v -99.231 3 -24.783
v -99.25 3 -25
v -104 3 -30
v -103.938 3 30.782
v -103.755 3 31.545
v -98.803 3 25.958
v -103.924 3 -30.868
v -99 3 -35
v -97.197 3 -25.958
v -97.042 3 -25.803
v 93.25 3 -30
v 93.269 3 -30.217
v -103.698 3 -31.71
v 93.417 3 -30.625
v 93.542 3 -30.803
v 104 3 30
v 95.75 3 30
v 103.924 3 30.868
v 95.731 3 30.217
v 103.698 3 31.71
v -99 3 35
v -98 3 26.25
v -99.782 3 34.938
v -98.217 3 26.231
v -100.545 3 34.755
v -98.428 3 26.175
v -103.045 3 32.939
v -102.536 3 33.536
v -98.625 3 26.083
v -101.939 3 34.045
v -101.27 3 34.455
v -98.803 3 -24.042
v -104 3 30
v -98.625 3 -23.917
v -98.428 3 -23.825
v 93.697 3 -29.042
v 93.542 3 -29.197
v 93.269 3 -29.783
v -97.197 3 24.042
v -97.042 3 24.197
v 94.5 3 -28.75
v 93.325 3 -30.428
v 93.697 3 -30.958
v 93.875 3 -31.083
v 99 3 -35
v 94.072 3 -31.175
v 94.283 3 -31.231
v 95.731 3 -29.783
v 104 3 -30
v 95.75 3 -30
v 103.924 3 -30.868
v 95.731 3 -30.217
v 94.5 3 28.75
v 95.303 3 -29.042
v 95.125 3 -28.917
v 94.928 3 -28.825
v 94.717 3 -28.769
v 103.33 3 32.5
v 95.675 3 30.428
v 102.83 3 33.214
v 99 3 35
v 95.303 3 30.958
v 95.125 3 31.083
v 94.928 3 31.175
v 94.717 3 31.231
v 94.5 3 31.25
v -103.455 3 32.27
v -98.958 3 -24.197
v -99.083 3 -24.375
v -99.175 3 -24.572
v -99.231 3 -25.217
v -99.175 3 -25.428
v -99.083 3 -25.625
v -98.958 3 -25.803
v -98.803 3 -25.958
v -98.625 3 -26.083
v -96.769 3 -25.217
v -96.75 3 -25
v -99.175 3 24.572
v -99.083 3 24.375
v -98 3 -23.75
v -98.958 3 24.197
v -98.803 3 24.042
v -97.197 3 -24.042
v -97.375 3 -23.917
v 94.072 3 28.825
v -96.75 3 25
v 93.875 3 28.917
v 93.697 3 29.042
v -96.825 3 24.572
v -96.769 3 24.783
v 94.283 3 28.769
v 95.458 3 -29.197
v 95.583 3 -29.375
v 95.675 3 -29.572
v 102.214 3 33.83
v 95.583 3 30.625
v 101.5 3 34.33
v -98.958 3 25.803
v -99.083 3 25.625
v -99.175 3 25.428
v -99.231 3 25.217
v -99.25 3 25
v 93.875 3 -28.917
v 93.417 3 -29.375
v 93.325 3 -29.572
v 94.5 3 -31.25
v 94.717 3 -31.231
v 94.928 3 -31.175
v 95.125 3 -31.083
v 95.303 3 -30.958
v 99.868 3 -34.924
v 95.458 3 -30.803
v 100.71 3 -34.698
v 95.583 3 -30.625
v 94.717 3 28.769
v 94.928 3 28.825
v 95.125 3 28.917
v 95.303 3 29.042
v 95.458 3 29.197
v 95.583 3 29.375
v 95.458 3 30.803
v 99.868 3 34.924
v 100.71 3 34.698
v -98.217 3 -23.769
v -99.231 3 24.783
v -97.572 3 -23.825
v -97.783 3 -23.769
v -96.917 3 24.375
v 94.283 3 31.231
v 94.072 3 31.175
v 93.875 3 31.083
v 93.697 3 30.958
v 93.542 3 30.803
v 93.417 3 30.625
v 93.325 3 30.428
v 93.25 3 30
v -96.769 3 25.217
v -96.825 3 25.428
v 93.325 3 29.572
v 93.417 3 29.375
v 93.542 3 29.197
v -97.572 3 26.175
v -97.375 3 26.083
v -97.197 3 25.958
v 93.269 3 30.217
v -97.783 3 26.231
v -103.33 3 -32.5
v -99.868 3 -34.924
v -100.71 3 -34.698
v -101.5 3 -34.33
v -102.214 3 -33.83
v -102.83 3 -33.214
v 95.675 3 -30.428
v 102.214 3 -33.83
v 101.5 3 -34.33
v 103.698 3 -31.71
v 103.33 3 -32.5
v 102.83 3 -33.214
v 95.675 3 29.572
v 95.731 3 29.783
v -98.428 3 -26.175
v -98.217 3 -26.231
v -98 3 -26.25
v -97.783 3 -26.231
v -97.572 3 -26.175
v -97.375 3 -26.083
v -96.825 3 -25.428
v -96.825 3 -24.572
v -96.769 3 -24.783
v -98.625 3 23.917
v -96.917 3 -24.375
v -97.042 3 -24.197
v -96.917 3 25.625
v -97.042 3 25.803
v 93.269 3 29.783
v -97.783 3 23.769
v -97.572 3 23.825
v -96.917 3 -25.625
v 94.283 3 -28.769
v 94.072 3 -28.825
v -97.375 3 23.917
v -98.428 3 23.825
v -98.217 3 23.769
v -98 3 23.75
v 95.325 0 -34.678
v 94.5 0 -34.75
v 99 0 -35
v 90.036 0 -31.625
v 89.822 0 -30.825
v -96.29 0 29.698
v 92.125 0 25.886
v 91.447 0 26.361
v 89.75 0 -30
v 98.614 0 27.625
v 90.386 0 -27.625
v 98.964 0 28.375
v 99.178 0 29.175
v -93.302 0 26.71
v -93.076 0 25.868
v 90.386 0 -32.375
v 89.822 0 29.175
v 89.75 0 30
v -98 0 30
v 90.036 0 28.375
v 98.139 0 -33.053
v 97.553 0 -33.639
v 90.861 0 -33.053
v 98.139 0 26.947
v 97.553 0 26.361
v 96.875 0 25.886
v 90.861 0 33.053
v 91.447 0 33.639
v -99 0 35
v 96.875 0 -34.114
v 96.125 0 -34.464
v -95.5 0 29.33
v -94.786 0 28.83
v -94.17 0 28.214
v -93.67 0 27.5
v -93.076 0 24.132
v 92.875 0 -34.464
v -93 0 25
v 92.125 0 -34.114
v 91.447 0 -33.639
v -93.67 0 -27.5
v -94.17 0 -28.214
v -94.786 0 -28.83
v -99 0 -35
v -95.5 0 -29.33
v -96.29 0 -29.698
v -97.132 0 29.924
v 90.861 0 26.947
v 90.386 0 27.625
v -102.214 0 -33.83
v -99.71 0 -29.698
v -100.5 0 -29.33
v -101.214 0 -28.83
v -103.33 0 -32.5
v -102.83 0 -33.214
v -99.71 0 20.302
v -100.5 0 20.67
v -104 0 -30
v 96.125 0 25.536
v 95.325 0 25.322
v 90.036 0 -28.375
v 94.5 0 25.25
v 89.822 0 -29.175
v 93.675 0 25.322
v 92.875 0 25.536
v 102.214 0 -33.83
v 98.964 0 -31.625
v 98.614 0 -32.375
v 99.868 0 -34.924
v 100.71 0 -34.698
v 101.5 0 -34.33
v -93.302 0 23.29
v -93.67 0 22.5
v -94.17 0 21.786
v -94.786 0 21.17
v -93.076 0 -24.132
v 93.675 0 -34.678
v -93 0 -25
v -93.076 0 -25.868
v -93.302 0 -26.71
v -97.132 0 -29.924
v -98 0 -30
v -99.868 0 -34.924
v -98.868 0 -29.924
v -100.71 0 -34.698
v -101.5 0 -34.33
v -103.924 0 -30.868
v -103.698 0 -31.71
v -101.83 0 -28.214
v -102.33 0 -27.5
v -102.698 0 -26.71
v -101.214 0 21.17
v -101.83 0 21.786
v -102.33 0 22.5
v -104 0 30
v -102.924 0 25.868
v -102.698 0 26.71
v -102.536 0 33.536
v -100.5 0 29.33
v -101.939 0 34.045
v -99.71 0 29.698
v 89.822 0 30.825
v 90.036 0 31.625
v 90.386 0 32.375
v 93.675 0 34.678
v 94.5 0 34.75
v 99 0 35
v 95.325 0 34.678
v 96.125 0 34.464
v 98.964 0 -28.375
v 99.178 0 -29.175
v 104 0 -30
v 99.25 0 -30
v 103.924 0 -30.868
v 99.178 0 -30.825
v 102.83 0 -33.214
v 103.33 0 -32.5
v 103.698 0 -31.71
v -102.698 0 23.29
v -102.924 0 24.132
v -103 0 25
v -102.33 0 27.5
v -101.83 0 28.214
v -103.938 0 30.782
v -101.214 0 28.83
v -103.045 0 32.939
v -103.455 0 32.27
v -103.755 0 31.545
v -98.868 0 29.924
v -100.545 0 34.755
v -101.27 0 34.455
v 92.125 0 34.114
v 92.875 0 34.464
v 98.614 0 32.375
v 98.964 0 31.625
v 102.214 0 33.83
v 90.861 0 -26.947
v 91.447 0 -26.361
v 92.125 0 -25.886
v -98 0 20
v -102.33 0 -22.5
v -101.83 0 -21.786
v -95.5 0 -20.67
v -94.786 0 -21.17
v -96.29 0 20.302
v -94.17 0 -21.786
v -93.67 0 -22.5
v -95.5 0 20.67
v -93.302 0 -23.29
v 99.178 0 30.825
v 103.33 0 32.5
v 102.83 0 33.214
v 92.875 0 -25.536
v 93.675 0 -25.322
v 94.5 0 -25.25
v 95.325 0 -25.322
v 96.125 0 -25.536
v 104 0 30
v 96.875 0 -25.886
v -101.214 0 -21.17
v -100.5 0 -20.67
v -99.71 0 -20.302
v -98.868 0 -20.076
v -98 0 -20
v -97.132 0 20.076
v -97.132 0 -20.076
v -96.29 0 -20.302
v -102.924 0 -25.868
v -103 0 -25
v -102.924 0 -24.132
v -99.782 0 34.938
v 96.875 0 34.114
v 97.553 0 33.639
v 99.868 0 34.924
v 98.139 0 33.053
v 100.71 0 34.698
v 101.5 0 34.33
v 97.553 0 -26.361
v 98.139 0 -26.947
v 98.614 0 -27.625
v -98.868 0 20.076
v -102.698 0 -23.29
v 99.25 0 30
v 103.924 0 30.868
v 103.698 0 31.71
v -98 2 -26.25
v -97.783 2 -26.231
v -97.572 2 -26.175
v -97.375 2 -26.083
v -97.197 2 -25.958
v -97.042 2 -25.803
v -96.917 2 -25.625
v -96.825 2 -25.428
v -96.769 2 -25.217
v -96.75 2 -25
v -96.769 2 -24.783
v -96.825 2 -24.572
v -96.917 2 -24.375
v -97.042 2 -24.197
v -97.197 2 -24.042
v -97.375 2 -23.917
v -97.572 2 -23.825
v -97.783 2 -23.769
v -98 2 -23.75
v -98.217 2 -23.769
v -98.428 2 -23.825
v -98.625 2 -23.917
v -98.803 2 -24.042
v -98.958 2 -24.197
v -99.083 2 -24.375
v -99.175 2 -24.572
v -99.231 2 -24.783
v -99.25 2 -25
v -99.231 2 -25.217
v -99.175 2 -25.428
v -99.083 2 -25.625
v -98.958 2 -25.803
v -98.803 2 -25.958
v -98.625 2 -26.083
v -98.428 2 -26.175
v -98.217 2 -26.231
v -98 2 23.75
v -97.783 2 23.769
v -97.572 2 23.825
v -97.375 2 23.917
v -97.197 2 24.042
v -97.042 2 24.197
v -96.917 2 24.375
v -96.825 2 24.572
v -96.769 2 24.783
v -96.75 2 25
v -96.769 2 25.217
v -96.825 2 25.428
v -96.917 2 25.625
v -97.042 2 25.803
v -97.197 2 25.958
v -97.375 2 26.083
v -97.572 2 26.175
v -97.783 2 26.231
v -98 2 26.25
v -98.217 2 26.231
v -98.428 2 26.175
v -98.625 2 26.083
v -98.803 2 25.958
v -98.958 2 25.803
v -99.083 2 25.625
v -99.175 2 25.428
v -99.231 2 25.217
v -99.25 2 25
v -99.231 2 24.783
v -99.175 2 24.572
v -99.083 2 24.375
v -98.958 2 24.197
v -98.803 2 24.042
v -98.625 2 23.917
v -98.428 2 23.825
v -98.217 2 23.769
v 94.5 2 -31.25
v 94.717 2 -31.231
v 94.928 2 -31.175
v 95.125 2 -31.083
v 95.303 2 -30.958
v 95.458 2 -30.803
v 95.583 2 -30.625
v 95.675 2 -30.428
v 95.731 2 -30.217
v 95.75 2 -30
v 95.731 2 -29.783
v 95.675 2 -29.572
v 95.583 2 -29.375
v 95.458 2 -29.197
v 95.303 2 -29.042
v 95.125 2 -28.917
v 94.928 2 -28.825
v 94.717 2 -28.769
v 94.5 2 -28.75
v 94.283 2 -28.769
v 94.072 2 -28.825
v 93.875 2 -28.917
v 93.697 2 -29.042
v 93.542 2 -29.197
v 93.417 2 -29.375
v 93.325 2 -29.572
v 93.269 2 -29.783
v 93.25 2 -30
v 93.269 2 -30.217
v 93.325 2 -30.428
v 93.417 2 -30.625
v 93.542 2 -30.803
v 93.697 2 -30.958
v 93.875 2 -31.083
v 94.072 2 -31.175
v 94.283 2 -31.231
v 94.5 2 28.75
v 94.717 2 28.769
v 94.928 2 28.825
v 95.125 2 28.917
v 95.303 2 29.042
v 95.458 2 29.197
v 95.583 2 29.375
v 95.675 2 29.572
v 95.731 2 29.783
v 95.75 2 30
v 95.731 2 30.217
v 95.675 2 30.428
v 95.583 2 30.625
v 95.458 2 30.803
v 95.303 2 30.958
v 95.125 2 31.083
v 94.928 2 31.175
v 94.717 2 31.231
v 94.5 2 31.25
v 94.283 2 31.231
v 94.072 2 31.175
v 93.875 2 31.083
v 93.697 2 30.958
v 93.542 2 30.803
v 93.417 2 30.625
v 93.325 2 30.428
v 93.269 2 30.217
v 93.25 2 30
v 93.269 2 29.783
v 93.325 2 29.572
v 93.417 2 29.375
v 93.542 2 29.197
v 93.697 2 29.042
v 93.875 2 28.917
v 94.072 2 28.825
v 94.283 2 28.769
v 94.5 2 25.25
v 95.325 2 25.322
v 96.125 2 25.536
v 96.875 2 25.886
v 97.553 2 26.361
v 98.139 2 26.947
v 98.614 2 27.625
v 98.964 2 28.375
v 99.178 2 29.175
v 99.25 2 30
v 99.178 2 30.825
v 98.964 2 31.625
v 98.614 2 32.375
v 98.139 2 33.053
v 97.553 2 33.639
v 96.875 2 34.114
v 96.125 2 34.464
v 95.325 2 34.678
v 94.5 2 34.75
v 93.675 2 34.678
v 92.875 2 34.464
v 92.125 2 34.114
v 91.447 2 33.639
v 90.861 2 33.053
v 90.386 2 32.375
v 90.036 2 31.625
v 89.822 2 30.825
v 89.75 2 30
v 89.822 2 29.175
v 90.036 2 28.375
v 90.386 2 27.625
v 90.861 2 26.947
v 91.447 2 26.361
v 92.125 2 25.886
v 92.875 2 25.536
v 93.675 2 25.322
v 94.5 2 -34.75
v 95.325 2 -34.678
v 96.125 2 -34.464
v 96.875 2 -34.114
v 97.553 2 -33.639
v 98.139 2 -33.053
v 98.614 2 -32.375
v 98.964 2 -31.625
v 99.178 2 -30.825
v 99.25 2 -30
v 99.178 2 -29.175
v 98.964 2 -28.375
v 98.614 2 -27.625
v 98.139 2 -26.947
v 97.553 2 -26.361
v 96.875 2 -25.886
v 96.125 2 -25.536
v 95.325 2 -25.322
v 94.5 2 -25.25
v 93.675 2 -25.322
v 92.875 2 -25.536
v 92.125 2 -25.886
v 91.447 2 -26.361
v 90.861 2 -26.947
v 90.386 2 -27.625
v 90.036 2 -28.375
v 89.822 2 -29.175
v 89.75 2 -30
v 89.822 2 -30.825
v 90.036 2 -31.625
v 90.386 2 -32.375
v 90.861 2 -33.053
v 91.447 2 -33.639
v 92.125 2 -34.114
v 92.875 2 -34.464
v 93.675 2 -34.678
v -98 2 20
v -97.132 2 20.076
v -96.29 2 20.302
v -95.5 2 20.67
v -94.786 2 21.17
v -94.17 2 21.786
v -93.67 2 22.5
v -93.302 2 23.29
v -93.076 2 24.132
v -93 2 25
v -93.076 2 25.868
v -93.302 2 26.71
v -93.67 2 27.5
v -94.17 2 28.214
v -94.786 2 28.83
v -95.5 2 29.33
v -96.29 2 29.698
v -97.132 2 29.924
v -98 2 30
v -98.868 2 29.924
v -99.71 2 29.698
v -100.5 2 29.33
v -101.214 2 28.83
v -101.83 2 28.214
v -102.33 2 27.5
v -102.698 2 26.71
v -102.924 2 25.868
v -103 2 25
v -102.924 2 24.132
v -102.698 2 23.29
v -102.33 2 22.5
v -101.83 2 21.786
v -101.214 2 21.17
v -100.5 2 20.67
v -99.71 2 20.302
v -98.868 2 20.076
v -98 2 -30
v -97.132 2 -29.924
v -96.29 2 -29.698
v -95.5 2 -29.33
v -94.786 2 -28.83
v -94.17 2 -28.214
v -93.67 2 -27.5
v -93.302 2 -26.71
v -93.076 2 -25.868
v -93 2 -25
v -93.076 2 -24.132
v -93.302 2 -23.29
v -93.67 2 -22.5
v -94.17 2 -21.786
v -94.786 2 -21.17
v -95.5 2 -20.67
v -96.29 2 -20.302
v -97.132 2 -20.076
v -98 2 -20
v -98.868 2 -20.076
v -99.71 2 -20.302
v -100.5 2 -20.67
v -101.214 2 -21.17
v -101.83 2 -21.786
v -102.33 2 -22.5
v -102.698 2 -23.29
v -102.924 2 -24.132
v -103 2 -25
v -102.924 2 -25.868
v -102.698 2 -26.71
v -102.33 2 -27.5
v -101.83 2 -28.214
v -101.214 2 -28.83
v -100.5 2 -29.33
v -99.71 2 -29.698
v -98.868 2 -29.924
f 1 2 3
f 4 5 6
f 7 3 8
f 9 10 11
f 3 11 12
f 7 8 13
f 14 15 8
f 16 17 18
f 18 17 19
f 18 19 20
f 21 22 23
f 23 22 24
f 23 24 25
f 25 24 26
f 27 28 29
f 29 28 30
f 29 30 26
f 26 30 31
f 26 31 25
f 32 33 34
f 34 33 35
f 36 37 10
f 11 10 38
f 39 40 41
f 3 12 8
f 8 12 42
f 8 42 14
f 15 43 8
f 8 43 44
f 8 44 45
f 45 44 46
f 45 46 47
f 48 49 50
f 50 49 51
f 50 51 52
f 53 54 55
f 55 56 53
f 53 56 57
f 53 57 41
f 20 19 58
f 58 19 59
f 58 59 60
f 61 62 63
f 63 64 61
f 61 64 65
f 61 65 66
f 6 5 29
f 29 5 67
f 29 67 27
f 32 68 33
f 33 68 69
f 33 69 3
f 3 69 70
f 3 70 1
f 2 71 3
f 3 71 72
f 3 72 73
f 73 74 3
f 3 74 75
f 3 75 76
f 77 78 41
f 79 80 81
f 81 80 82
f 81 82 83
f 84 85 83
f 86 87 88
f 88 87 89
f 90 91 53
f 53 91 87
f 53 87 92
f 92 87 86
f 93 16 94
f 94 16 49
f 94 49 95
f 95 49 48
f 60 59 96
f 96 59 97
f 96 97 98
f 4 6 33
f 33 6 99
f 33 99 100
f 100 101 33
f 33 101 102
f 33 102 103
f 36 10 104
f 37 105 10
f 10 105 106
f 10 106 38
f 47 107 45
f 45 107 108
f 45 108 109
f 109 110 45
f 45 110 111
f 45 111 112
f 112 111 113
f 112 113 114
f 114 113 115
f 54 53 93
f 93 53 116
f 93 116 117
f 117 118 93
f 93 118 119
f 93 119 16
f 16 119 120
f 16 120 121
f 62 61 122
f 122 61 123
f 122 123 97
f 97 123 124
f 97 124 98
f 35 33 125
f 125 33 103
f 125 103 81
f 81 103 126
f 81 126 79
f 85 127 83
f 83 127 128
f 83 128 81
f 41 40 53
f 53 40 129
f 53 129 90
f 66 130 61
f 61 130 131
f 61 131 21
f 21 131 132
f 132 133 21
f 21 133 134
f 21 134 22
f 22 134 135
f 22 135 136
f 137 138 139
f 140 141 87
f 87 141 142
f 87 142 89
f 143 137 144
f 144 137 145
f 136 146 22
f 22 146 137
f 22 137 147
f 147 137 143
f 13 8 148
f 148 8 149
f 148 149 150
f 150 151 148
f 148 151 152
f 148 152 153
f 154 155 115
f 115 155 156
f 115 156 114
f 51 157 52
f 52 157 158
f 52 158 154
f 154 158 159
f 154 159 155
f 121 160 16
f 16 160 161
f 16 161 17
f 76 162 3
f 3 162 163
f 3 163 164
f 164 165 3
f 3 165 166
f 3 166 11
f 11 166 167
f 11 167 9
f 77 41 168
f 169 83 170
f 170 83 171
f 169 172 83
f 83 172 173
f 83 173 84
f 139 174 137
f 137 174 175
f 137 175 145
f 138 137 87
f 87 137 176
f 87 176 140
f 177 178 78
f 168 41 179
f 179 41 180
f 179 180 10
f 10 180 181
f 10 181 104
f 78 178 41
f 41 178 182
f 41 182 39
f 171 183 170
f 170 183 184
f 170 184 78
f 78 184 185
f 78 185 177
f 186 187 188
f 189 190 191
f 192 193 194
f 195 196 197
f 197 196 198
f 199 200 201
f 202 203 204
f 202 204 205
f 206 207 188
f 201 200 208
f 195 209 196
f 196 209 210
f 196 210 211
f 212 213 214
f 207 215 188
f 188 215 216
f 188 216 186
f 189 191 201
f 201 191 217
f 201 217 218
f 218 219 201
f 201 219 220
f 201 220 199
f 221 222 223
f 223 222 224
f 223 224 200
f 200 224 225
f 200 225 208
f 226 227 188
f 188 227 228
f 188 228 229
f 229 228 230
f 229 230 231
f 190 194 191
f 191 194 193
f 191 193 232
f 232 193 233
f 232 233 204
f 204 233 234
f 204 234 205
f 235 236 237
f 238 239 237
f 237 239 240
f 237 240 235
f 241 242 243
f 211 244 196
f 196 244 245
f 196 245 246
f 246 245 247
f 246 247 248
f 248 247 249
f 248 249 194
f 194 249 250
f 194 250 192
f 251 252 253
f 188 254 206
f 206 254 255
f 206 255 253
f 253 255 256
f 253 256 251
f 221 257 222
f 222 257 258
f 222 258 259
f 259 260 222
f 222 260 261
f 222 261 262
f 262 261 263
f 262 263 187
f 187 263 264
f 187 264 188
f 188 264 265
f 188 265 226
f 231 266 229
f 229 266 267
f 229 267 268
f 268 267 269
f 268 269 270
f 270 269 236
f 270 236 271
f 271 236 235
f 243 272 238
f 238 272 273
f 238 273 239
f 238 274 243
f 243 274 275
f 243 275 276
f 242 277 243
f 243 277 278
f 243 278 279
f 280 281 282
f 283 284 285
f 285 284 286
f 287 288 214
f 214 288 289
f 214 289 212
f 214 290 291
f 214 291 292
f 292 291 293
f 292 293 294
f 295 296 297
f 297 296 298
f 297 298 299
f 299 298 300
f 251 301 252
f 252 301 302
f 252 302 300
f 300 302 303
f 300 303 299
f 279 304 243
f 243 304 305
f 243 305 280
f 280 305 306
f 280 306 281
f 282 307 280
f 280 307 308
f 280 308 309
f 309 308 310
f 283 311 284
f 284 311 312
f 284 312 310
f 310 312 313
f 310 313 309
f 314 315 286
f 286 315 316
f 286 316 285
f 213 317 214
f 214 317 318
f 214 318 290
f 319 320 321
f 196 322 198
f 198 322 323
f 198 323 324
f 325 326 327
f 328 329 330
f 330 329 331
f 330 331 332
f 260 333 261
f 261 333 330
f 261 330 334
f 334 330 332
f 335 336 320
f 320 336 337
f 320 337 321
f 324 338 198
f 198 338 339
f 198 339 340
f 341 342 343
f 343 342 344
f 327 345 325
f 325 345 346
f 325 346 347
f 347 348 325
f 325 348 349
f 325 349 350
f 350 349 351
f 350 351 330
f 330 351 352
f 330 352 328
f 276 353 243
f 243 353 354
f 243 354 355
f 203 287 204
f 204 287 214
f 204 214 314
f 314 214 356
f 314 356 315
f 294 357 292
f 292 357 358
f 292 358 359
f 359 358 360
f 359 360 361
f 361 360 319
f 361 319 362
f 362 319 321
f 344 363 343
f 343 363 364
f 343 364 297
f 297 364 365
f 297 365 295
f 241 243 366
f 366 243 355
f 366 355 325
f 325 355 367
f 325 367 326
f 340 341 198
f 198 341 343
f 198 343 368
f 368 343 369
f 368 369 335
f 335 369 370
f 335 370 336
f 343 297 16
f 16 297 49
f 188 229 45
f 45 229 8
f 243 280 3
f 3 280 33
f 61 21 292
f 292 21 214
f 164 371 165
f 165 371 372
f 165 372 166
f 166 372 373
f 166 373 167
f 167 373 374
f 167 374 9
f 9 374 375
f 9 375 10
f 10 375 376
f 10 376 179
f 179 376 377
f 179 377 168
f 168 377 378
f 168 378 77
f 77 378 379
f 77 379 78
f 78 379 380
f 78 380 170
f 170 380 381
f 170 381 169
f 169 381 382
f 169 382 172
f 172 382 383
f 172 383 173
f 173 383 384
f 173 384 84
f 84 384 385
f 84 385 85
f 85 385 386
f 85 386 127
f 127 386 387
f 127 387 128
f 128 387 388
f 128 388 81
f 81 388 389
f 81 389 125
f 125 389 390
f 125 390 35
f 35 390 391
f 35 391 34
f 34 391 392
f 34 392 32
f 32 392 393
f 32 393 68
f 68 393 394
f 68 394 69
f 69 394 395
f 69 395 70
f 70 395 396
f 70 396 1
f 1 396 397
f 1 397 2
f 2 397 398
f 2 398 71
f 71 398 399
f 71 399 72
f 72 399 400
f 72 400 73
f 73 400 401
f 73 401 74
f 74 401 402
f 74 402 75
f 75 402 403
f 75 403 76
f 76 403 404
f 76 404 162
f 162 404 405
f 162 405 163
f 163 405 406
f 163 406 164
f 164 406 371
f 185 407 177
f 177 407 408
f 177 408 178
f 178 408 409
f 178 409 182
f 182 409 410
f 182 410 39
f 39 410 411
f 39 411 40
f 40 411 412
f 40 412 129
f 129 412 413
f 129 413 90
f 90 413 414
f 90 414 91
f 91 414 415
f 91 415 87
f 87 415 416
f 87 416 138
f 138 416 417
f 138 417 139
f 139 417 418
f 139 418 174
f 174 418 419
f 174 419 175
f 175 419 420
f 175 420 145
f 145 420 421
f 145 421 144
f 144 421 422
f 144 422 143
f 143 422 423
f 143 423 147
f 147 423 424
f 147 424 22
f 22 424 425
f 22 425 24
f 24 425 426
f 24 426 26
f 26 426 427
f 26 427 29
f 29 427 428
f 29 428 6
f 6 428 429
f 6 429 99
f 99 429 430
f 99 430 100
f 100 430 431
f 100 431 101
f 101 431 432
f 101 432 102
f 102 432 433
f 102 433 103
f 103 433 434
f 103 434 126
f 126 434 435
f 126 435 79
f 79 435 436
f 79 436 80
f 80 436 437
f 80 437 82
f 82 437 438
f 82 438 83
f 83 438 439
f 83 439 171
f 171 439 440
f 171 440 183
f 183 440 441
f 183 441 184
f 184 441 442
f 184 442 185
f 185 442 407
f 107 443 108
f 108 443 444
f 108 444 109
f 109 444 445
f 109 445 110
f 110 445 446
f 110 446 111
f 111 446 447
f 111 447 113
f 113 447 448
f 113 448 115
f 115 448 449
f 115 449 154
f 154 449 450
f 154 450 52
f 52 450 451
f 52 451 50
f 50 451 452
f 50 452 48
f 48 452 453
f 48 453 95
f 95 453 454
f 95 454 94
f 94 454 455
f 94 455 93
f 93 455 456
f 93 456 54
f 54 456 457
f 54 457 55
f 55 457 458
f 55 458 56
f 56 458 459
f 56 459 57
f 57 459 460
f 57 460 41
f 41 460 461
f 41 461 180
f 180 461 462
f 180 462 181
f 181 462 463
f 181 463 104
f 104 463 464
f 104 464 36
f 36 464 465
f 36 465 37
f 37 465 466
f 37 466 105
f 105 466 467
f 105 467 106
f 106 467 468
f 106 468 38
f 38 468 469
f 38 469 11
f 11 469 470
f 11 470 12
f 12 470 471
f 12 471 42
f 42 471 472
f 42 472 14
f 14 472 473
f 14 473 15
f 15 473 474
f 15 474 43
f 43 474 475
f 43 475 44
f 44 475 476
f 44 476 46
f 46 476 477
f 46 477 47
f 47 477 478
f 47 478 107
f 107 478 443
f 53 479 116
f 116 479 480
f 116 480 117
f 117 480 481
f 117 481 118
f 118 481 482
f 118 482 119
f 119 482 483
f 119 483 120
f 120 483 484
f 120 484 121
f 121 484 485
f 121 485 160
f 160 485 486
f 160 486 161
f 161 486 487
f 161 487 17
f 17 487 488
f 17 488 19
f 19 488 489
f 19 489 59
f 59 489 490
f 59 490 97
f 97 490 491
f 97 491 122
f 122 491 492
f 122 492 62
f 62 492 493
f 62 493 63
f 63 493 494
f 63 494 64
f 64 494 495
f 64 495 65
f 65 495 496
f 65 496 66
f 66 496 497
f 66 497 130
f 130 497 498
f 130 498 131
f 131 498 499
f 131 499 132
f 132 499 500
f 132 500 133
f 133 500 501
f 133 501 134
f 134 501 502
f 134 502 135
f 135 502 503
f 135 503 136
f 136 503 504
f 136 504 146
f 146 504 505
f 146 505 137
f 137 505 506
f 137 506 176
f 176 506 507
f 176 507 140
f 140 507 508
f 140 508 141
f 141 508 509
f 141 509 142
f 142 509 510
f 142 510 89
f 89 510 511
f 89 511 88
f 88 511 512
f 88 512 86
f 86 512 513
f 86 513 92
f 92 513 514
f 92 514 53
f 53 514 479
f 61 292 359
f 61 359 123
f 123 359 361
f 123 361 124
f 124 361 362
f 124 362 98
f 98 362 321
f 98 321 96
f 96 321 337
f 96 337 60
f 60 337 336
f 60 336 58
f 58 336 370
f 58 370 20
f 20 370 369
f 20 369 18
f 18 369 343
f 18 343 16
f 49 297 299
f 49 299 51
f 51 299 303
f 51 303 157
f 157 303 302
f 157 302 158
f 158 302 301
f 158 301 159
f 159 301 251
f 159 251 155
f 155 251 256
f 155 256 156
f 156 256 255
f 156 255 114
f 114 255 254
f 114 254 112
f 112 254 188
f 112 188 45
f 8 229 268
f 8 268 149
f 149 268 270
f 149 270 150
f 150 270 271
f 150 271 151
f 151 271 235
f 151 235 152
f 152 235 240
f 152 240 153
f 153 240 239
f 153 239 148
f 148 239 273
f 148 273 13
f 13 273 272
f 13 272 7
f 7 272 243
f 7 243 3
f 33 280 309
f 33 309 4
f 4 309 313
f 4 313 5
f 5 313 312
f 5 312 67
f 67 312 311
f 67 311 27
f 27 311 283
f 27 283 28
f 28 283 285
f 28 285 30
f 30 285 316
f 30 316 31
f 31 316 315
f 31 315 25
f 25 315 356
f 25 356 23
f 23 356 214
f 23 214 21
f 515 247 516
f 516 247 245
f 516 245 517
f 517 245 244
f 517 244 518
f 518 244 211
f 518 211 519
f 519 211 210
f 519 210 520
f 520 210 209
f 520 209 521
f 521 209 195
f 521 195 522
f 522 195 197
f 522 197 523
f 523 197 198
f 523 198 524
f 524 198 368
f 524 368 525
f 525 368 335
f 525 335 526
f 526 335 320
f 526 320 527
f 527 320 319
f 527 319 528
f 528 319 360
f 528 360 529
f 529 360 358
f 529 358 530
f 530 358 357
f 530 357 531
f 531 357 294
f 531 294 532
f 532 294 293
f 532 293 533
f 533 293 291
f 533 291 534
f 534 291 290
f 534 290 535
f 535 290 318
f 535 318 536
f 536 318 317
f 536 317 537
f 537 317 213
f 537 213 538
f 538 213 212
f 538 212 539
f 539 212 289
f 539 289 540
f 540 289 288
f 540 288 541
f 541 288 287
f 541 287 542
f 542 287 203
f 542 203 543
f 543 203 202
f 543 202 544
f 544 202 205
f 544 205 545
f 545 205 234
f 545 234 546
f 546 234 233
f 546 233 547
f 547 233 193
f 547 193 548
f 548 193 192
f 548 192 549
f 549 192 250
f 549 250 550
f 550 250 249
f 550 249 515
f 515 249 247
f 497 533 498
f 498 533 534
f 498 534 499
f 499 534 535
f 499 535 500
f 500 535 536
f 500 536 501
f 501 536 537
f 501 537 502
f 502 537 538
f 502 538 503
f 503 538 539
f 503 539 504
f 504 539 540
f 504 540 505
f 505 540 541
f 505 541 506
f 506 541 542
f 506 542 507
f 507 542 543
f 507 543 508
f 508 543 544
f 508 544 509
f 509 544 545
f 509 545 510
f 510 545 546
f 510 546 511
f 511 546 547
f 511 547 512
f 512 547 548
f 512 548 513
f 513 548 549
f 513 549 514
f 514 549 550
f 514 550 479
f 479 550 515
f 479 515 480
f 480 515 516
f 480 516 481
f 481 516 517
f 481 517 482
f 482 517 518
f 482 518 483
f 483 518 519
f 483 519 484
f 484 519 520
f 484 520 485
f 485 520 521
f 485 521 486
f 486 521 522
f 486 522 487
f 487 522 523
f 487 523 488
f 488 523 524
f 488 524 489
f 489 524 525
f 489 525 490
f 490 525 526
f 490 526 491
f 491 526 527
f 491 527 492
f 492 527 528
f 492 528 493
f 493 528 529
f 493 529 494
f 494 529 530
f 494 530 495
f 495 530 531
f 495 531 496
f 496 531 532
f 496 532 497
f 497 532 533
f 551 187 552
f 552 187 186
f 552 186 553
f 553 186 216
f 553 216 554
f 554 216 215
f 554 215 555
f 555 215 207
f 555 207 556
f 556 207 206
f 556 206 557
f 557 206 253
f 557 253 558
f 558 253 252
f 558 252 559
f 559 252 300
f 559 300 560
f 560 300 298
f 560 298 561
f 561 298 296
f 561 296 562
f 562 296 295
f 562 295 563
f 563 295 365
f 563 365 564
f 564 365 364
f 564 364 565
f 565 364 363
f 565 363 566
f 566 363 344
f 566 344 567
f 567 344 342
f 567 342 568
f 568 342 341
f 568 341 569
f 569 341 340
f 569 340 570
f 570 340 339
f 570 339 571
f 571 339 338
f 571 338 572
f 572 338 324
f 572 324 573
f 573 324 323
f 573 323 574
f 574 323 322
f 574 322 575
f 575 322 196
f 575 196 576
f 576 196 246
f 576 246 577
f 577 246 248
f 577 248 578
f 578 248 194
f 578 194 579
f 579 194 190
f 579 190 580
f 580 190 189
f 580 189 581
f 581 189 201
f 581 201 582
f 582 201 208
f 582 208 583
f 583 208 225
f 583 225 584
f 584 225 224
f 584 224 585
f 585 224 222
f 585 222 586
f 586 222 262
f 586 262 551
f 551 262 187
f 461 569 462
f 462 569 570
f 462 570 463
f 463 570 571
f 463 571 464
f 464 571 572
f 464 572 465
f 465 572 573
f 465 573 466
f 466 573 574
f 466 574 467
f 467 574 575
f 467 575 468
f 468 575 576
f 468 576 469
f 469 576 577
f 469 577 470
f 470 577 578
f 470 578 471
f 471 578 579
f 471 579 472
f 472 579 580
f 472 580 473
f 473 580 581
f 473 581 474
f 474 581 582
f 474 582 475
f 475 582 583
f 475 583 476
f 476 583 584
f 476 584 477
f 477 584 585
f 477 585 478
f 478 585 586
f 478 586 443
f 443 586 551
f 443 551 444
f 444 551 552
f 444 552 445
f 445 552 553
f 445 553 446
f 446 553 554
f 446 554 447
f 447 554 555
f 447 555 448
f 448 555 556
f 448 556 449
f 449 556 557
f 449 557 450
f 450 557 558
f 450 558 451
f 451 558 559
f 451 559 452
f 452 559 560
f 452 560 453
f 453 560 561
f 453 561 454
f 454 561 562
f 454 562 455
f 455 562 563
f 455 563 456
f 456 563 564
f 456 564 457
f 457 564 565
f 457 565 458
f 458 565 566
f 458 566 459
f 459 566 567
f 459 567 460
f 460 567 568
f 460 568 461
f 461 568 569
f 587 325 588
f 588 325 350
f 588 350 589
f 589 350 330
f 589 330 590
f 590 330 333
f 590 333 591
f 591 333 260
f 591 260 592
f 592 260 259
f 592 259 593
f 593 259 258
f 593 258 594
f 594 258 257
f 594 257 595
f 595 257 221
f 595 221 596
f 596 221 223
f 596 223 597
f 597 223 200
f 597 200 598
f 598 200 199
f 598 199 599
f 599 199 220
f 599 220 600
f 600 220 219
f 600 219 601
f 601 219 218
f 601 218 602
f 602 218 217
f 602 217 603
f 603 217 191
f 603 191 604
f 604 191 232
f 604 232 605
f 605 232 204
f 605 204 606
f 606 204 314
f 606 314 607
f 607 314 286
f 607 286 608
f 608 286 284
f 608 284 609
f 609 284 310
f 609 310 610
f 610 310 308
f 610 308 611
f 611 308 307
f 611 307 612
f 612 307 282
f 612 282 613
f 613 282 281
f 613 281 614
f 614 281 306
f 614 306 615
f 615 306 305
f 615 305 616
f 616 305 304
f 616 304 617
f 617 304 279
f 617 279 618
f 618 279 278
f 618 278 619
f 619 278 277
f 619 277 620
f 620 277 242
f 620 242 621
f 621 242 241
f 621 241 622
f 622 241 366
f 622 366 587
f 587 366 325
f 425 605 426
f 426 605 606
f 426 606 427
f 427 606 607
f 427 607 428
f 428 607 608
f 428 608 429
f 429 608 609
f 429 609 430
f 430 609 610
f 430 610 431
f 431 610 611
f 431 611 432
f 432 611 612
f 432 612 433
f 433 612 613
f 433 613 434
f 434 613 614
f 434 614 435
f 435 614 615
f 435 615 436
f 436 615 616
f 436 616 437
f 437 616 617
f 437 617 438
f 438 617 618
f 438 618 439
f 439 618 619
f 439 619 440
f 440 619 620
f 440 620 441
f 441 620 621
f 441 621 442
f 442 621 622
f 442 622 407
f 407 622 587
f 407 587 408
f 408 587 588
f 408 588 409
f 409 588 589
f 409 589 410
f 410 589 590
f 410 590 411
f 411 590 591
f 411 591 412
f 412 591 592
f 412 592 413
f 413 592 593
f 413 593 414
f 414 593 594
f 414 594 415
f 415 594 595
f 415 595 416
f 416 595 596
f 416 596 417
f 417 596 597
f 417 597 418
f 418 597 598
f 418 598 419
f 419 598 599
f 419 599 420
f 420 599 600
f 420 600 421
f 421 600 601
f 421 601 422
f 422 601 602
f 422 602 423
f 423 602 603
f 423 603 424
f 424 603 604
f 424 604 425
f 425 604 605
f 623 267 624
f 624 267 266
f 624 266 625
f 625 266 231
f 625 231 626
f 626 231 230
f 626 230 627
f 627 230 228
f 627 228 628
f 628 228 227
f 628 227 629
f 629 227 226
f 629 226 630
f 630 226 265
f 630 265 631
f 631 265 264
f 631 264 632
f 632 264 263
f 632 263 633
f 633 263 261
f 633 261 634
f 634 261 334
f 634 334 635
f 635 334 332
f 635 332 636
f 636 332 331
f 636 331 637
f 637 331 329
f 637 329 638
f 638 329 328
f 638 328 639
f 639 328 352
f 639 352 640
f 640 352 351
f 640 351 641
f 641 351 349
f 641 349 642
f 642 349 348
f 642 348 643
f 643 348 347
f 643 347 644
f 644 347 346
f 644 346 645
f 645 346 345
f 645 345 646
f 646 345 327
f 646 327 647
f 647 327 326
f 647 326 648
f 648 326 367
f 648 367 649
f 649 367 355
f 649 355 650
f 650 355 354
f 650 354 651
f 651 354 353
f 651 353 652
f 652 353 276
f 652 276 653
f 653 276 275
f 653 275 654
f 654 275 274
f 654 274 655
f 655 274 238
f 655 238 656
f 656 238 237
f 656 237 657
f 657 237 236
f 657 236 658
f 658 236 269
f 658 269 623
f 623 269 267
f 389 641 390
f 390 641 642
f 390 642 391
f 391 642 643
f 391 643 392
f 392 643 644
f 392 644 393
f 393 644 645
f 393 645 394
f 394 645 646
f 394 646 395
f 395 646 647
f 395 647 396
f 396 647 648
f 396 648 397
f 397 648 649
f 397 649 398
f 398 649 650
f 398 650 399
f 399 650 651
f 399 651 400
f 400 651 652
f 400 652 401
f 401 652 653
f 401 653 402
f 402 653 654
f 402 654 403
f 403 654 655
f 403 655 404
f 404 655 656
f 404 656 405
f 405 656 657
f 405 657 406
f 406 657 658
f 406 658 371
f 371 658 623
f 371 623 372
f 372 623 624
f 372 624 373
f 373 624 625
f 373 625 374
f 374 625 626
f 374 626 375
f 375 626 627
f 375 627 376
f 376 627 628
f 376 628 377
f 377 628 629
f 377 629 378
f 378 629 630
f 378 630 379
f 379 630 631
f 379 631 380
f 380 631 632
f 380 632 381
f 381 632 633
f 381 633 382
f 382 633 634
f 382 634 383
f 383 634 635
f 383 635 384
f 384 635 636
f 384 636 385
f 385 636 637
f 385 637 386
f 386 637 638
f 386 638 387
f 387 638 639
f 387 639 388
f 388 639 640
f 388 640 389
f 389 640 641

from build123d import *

# Parameters (mm, degrees)
SKETCH1_W           = 208
SKETCH1_H           = 70
SKETCH1_R           = 1.25
BOSS_EXTRUDE1_DEPTH = 3
FILLET1_R           = 5
SKETCH2_R           = 5
SKETCH2_R_2         = 4.75
CUT_EXTRUDE2_DEPTH  = 2


with BuildPart() as part:
    # Sketch1 → Boss-Extrude1 (new body)
    with BuildSketch(Plane(origin=(0, 0, 0), x_dir=(1, 0, 0), z_dir=(0, 1, 0))):
        Rectangle(SKETCH1_W, SKETCH1_H)
        with Locations(Location((-98, 25, 0), (0, 0, 270))):
            Circle(SKETCH1_R, mode=Mode.SUBTRACT)
        with Locations(Location((-98, -25, 0), (0, 0, 270))):
            Circle(SKETCH1_R, mode=Mode.SUBTRACT)
        with Locations(Location((94.5, 30, 0), (0, 0, 270))):
            Circle(SKETCH1_R, mode=Mode.SUBTRACT)
        with Locations(Location((94.5, -30, 0), (0, 0, 270))):
            Circle(SKETCH1_R, mode=Mode.SUBTRACT)
    extrude(amount=BOSS_EXTRUDE1_DEPTH)

    # Fillet1
    fillet1_edges = [part.edges().sort_by_distance(p)[0] for p in [
        (104, 1.5, 35),
        (-104, 1.5, 35),
        (-104, 1.5, -35),
        (104, 1.5, -35),
    ]]
    fillet(fillet1_edges, radius=FILLET1_R)

    # Sketch2 → Cut-Extrude2 (cut)
    with BuildSketch(Plane(origin=(0, 0, 0), x_dir=(1, 0, 0), z_dir=(0, 1, 0))):
        with Locations(Location((-98, 25, 0), (0, 0, 270))):
            Circle(SKETCH2_R)
        with Locations(Location((94.5, 30, 0), (0, 0, 270))):
            Circle(SKETCH2_R_2)
        with Locations(Location((94.5, -30, 0), (0, 0, 270))):
            Circle(SKETCH2_R_2)
        with Locations(Location((-98, -25, 0), (0, 0, 270))):
            Circle(SKETCH2_R)
    extrude(amount=CUT_EXTRUDE2_DEPTH, mode=Mode.SUBTRACT)


solid = part.part
